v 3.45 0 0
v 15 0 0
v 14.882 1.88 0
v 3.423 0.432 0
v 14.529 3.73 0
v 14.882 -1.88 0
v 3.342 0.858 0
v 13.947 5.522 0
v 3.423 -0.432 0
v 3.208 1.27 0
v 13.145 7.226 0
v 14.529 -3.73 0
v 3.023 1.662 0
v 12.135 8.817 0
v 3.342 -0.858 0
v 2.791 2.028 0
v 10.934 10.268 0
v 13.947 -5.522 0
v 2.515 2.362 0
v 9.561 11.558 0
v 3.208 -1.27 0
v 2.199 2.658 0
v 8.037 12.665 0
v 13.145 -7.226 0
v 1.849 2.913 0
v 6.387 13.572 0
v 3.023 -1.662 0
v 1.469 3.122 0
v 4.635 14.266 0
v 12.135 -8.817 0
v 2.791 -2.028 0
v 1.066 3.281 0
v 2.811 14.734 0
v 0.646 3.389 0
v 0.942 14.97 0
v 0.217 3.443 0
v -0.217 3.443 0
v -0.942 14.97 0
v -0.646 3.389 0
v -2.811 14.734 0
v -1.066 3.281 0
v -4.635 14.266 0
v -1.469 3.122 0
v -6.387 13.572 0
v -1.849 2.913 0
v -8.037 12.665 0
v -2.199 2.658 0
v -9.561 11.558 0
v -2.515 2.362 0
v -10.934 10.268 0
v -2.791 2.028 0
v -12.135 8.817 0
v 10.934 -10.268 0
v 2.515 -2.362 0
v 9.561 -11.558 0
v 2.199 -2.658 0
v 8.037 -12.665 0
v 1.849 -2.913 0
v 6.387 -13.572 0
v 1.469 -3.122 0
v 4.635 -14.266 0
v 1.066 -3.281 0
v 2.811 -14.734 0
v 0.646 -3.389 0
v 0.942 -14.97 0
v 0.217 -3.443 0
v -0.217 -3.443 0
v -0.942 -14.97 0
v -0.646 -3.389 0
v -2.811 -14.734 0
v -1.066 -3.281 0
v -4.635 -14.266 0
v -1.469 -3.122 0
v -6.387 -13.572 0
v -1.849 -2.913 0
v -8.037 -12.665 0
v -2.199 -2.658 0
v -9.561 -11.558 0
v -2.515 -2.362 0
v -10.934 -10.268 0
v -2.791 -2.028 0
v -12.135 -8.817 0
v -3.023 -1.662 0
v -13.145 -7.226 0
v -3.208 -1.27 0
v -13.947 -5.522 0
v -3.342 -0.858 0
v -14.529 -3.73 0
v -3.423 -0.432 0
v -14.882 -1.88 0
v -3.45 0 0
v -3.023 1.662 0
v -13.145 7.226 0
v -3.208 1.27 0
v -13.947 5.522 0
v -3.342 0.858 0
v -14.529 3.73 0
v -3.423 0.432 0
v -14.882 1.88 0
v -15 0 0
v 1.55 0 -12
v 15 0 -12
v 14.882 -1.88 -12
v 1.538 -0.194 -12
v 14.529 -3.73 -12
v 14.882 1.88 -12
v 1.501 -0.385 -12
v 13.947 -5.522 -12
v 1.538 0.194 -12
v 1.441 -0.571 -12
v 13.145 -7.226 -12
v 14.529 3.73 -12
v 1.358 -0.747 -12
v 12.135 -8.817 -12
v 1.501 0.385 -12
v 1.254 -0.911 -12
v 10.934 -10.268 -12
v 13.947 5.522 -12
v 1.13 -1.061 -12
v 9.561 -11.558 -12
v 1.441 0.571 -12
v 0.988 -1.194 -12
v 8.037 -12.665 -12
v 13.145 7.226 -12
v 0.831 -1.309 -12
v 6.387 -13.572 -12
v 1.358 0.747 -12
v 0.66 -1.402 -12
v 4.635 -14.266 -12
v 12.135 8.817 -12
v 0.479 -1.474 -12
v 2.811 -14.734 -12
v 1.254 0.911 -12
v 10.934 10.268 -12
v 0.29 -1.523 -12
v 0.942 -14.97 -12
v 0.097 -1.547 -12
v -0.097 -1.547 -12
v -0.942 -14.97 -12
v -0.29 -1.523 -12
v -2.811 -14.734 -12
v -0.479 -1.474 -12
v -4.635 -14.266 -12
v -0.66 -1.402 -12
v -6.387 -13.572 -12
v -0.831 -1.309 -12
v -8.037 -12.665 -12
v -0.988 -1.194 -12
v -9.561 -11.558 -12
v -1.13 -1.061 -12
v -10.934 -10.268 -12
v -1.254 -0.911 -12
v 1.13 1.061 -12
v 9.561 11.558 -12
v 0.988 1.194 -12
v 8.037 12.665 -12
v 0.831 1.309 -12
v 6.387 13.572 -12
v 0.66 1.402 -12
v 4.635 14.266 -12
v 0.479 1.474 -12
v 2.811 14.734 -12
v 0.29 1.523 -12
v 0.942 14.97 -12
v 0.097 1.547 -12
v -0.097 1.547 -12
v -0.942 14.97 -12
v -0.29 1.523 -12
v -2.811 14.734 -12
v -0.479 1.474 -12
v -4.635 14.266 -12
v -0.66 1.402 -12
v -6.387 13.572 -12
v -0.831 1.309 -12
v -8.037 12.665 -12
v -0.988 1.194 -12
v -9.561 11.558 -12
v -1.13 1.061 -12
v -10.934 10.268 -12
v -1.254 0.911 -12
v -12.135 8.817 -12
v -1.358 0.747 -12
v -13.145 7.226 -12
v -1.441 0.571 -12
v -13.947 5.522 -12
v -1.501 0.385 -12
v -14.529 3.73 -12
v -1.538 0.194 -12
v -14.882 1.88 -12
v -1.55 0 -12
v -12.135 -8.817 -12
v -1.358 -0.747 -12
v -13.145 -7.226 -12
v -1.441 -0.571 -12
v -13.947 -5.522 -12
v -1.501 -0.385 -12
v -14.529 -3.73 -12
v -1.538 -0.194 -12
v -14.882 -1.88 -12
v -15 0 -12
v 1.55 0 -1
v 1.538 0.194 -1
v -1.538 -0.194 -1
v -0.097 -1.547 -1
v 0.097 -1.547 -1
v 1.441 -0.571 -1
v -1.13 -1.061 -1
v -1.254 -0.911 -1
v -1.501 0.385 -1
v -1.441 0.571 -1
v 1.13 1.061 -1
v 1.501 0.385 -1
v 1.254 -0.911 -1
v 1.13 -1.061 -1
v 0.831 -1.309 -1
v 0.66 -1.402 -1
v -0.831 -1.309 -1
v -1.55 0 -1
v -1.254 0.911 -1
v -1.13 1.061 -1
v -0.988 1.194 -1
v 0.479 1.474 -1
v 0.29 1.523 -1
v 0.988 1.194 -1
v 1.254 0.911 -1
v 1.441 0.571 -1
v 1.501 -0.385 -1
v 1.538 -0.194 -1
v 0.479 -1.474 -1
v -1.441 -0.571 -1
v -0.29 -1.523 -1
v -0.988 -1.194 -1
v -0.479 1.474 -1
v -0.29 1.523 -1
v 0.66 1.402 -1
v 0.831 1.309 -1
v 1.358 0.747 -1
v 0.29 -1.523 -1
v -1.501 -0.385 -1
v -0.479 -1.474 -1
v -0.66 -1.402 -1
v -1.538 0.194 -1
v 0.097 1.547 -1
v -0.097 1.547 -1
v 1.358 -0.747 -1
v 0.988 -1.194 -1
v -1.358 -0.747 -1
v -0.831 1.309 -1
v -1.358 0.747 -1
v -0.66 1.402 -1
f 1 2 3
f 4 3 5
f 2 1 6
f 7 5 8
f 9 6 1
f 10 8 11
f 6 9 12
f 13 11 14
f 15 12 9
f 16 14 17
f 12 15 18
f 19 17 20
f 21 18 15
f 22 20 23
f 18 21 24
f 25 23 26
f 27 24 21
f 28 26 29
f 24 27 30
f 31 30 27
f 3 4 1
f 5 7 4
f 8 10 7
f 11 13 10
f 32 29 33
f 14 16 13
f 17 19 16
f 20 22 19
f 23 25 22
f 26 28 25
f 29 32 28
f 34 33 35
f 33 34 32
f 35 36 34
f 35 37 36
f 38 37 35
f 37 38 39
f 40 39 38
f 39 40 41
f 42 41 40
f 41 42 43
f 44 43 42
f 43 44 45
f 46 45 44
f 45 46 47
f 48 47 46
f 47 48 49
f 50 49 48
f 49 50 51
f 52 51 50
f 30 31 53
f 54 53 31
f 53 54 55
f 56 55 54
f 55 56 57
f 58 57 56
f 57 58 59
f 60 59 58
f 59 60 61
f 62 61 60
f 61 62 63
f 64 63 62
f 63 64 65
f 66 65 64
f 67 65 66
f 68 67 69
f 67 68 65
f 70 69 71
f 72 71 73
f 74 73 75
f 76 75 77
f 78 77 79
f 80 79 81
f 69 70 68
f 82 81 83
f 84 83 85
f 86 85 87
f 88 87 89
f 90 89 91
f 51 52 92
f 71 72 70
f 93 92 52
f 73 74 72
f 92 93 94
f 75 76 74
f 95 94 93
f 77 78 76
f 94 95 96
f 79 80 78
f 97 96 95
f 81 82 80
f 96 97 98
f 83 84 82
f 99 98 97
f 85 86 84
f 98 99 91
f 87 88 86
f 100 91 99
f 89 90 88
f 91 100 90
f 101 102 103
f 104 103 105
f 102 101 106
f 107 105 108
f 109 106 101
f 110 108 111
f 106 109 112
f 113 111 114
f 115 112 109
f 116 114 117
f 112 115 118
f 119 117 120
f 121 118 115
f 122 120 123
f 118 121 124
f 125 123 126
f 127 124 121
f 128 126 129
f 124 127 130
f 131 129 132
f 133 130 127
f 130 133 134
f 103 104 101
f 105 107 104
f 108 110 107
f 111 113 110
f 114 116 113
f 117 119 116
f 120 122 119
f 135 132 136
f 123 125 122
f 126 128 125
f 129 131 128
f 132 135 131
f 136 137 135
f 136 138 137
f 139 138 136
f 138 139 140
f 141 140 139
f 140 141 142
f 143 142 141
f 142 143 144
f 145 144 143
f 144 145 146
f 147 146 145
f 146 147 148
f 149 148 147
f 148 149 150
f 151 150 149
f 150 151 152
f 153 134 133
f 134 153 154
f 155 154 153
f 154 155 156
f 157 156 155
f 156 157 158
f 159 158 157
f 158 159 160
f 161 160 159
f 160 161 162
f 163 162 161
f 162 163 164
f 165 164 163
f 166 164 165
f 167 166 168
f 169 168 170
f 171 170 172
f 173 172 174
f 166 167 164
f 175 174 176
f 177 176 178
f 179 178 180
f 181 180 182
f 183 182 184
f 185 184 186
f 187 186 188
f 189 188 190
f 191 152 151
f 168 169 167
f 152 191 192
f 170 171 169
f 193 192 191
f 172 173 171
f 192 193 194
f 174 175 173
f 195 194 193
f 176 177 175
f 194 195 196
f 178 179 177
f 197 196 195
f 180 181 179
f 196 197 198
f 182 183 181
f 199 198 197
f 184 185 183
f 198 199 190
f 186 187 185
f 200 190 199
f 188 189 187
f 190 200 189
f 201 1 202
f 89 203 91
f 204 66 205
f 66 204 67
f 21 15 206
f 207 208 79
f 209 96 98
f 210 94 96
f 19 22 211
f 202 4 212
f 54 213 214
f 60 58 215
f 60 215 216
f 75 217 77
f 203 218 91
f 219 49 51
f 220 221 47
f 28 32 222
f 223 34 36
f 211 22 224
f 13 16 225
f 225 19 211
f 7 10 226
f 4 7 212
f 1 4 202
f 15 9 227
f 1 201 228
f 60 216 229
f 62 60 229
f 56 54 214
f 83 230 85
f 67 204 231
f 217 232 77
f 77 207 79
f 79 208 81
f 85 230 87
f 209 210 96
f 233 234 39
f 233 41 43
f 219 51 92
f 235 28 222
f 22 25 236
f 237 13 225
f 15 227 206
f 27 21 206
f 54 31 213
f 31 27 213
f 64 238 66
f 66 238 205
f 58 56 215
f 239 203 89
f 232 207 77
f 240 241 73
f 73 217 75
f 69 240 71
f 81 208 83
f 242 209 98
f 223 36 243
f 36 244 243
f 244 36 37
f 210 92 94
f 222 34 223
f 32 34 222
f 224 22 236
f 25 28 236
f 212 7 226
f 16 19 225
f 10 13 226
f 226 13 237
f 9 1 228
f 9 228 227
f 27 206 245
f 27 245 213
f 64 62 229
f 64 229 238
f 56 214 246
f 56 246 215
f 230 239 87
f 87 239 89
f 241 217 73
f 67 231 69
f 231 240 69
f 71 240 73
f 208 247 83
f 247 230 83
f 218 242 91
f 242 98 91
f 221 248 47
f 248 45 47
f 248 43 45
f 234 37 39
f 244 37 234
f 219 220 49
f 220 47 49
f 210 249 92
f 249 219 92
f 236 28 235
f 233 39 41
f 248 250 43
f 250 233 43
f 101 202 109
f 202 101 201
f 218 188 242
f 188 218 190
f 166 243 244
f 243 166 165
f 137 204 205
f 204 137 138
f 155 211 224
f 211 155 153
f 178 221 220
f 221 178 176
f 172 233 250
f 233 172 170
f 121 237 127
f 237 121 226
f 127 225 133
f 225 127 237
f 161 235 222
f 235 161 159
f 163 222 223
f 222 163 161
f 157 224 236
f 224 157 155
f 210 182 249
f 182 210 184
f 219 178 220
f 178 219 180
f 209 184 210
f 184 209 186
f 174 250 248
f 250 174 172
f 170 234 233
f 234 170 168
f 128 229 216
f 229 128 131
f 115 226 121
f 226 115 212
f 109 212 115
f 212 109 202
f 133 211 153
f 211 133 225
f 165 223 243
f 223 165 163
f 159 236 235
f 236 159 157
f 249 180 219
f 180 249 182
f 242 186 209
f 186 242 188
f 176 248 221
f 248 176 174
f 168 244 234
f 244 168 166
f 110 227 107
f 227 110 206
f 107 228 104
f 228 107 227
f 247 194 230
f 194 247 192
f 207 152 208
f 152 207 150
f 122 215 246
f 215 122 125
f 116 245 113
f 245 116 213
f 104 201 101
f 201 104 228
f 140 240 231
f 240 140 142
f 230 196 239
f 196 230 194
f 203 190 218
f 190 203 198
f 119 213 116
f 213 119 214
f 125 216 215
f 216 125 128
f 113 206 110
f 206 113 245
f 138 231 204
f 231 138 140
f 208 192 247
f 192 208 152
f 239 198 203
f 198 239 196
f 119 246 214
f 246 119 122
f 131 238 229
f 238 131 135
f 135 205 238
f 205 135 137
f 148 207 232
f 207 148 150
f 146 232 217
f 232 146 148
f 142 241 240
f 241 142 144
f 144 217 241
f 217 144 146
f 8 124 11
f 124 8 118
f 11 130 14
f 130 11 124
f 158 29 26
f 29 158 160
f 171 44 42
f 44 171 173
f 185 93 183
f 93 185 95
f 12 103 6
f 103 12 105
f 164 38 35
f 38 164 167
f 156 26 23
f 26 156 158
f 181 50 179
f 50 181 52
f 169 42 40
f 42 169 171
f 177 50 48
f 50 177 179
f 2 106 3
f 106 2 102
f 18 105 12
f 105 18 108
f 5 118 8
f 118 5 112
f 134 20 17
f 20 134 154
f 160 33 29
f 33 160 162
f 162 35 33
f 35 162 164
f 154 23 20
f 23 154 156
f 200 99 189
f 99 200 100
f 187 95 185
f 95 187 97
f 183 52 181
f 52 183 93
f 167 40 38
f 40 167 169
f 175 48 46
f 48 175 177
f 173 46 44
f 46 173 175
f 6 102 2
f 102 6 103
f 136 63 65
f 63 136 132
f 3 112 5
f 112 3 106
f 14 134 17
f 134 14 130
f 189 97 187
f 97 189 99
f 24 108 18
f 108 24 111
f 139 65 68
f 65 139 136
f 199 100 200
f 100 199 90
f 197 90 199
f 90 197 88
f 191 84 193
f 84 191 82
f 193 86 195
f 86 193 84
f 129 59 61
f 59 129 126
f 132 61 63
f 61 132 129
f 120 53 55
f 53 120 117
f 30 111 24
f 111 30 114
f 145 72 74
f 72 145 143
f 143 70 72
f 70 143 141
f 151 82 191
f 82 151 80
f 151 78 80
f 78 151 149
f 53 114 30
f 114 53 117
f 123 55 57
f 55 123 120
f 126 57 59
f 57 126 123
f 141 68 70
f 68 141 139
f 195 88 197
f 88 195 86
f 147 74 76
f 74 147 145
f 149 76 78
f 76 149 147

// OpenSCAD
$fn = 50;


difference() {
	union() {
		translate(v = [0, 0, -12.0000000000]) {
			cylinder(h = 12, r = 15.0000000000);
		}
	}
	union() {
		translate(v = [0, 0, 0]) {
			rotate(a = [0, 0, 0]) {
				difference() {
					union() {
						translate(v = [0, 0, -12.0000000000]) {
							cylinder(h = 12, r = 1.2500000000);
						}
						translate(v = [0, 0, -1.0000000000]) {
							cylinder(h = 1.0000000000, r1 = 1.5500000000, r2 = 3.4500000000);
						}
						translate(v = [0, 0, -12.0000000000]) {
							cylinder(h = 12, r = 1.5500000000);
						}
						translate(v = [0, 0, -12.0000000000]) {
							cylinder(h = 12, r = 1.2500000000);
						}
					}
					union();
				}
			}
		}
	}
}
